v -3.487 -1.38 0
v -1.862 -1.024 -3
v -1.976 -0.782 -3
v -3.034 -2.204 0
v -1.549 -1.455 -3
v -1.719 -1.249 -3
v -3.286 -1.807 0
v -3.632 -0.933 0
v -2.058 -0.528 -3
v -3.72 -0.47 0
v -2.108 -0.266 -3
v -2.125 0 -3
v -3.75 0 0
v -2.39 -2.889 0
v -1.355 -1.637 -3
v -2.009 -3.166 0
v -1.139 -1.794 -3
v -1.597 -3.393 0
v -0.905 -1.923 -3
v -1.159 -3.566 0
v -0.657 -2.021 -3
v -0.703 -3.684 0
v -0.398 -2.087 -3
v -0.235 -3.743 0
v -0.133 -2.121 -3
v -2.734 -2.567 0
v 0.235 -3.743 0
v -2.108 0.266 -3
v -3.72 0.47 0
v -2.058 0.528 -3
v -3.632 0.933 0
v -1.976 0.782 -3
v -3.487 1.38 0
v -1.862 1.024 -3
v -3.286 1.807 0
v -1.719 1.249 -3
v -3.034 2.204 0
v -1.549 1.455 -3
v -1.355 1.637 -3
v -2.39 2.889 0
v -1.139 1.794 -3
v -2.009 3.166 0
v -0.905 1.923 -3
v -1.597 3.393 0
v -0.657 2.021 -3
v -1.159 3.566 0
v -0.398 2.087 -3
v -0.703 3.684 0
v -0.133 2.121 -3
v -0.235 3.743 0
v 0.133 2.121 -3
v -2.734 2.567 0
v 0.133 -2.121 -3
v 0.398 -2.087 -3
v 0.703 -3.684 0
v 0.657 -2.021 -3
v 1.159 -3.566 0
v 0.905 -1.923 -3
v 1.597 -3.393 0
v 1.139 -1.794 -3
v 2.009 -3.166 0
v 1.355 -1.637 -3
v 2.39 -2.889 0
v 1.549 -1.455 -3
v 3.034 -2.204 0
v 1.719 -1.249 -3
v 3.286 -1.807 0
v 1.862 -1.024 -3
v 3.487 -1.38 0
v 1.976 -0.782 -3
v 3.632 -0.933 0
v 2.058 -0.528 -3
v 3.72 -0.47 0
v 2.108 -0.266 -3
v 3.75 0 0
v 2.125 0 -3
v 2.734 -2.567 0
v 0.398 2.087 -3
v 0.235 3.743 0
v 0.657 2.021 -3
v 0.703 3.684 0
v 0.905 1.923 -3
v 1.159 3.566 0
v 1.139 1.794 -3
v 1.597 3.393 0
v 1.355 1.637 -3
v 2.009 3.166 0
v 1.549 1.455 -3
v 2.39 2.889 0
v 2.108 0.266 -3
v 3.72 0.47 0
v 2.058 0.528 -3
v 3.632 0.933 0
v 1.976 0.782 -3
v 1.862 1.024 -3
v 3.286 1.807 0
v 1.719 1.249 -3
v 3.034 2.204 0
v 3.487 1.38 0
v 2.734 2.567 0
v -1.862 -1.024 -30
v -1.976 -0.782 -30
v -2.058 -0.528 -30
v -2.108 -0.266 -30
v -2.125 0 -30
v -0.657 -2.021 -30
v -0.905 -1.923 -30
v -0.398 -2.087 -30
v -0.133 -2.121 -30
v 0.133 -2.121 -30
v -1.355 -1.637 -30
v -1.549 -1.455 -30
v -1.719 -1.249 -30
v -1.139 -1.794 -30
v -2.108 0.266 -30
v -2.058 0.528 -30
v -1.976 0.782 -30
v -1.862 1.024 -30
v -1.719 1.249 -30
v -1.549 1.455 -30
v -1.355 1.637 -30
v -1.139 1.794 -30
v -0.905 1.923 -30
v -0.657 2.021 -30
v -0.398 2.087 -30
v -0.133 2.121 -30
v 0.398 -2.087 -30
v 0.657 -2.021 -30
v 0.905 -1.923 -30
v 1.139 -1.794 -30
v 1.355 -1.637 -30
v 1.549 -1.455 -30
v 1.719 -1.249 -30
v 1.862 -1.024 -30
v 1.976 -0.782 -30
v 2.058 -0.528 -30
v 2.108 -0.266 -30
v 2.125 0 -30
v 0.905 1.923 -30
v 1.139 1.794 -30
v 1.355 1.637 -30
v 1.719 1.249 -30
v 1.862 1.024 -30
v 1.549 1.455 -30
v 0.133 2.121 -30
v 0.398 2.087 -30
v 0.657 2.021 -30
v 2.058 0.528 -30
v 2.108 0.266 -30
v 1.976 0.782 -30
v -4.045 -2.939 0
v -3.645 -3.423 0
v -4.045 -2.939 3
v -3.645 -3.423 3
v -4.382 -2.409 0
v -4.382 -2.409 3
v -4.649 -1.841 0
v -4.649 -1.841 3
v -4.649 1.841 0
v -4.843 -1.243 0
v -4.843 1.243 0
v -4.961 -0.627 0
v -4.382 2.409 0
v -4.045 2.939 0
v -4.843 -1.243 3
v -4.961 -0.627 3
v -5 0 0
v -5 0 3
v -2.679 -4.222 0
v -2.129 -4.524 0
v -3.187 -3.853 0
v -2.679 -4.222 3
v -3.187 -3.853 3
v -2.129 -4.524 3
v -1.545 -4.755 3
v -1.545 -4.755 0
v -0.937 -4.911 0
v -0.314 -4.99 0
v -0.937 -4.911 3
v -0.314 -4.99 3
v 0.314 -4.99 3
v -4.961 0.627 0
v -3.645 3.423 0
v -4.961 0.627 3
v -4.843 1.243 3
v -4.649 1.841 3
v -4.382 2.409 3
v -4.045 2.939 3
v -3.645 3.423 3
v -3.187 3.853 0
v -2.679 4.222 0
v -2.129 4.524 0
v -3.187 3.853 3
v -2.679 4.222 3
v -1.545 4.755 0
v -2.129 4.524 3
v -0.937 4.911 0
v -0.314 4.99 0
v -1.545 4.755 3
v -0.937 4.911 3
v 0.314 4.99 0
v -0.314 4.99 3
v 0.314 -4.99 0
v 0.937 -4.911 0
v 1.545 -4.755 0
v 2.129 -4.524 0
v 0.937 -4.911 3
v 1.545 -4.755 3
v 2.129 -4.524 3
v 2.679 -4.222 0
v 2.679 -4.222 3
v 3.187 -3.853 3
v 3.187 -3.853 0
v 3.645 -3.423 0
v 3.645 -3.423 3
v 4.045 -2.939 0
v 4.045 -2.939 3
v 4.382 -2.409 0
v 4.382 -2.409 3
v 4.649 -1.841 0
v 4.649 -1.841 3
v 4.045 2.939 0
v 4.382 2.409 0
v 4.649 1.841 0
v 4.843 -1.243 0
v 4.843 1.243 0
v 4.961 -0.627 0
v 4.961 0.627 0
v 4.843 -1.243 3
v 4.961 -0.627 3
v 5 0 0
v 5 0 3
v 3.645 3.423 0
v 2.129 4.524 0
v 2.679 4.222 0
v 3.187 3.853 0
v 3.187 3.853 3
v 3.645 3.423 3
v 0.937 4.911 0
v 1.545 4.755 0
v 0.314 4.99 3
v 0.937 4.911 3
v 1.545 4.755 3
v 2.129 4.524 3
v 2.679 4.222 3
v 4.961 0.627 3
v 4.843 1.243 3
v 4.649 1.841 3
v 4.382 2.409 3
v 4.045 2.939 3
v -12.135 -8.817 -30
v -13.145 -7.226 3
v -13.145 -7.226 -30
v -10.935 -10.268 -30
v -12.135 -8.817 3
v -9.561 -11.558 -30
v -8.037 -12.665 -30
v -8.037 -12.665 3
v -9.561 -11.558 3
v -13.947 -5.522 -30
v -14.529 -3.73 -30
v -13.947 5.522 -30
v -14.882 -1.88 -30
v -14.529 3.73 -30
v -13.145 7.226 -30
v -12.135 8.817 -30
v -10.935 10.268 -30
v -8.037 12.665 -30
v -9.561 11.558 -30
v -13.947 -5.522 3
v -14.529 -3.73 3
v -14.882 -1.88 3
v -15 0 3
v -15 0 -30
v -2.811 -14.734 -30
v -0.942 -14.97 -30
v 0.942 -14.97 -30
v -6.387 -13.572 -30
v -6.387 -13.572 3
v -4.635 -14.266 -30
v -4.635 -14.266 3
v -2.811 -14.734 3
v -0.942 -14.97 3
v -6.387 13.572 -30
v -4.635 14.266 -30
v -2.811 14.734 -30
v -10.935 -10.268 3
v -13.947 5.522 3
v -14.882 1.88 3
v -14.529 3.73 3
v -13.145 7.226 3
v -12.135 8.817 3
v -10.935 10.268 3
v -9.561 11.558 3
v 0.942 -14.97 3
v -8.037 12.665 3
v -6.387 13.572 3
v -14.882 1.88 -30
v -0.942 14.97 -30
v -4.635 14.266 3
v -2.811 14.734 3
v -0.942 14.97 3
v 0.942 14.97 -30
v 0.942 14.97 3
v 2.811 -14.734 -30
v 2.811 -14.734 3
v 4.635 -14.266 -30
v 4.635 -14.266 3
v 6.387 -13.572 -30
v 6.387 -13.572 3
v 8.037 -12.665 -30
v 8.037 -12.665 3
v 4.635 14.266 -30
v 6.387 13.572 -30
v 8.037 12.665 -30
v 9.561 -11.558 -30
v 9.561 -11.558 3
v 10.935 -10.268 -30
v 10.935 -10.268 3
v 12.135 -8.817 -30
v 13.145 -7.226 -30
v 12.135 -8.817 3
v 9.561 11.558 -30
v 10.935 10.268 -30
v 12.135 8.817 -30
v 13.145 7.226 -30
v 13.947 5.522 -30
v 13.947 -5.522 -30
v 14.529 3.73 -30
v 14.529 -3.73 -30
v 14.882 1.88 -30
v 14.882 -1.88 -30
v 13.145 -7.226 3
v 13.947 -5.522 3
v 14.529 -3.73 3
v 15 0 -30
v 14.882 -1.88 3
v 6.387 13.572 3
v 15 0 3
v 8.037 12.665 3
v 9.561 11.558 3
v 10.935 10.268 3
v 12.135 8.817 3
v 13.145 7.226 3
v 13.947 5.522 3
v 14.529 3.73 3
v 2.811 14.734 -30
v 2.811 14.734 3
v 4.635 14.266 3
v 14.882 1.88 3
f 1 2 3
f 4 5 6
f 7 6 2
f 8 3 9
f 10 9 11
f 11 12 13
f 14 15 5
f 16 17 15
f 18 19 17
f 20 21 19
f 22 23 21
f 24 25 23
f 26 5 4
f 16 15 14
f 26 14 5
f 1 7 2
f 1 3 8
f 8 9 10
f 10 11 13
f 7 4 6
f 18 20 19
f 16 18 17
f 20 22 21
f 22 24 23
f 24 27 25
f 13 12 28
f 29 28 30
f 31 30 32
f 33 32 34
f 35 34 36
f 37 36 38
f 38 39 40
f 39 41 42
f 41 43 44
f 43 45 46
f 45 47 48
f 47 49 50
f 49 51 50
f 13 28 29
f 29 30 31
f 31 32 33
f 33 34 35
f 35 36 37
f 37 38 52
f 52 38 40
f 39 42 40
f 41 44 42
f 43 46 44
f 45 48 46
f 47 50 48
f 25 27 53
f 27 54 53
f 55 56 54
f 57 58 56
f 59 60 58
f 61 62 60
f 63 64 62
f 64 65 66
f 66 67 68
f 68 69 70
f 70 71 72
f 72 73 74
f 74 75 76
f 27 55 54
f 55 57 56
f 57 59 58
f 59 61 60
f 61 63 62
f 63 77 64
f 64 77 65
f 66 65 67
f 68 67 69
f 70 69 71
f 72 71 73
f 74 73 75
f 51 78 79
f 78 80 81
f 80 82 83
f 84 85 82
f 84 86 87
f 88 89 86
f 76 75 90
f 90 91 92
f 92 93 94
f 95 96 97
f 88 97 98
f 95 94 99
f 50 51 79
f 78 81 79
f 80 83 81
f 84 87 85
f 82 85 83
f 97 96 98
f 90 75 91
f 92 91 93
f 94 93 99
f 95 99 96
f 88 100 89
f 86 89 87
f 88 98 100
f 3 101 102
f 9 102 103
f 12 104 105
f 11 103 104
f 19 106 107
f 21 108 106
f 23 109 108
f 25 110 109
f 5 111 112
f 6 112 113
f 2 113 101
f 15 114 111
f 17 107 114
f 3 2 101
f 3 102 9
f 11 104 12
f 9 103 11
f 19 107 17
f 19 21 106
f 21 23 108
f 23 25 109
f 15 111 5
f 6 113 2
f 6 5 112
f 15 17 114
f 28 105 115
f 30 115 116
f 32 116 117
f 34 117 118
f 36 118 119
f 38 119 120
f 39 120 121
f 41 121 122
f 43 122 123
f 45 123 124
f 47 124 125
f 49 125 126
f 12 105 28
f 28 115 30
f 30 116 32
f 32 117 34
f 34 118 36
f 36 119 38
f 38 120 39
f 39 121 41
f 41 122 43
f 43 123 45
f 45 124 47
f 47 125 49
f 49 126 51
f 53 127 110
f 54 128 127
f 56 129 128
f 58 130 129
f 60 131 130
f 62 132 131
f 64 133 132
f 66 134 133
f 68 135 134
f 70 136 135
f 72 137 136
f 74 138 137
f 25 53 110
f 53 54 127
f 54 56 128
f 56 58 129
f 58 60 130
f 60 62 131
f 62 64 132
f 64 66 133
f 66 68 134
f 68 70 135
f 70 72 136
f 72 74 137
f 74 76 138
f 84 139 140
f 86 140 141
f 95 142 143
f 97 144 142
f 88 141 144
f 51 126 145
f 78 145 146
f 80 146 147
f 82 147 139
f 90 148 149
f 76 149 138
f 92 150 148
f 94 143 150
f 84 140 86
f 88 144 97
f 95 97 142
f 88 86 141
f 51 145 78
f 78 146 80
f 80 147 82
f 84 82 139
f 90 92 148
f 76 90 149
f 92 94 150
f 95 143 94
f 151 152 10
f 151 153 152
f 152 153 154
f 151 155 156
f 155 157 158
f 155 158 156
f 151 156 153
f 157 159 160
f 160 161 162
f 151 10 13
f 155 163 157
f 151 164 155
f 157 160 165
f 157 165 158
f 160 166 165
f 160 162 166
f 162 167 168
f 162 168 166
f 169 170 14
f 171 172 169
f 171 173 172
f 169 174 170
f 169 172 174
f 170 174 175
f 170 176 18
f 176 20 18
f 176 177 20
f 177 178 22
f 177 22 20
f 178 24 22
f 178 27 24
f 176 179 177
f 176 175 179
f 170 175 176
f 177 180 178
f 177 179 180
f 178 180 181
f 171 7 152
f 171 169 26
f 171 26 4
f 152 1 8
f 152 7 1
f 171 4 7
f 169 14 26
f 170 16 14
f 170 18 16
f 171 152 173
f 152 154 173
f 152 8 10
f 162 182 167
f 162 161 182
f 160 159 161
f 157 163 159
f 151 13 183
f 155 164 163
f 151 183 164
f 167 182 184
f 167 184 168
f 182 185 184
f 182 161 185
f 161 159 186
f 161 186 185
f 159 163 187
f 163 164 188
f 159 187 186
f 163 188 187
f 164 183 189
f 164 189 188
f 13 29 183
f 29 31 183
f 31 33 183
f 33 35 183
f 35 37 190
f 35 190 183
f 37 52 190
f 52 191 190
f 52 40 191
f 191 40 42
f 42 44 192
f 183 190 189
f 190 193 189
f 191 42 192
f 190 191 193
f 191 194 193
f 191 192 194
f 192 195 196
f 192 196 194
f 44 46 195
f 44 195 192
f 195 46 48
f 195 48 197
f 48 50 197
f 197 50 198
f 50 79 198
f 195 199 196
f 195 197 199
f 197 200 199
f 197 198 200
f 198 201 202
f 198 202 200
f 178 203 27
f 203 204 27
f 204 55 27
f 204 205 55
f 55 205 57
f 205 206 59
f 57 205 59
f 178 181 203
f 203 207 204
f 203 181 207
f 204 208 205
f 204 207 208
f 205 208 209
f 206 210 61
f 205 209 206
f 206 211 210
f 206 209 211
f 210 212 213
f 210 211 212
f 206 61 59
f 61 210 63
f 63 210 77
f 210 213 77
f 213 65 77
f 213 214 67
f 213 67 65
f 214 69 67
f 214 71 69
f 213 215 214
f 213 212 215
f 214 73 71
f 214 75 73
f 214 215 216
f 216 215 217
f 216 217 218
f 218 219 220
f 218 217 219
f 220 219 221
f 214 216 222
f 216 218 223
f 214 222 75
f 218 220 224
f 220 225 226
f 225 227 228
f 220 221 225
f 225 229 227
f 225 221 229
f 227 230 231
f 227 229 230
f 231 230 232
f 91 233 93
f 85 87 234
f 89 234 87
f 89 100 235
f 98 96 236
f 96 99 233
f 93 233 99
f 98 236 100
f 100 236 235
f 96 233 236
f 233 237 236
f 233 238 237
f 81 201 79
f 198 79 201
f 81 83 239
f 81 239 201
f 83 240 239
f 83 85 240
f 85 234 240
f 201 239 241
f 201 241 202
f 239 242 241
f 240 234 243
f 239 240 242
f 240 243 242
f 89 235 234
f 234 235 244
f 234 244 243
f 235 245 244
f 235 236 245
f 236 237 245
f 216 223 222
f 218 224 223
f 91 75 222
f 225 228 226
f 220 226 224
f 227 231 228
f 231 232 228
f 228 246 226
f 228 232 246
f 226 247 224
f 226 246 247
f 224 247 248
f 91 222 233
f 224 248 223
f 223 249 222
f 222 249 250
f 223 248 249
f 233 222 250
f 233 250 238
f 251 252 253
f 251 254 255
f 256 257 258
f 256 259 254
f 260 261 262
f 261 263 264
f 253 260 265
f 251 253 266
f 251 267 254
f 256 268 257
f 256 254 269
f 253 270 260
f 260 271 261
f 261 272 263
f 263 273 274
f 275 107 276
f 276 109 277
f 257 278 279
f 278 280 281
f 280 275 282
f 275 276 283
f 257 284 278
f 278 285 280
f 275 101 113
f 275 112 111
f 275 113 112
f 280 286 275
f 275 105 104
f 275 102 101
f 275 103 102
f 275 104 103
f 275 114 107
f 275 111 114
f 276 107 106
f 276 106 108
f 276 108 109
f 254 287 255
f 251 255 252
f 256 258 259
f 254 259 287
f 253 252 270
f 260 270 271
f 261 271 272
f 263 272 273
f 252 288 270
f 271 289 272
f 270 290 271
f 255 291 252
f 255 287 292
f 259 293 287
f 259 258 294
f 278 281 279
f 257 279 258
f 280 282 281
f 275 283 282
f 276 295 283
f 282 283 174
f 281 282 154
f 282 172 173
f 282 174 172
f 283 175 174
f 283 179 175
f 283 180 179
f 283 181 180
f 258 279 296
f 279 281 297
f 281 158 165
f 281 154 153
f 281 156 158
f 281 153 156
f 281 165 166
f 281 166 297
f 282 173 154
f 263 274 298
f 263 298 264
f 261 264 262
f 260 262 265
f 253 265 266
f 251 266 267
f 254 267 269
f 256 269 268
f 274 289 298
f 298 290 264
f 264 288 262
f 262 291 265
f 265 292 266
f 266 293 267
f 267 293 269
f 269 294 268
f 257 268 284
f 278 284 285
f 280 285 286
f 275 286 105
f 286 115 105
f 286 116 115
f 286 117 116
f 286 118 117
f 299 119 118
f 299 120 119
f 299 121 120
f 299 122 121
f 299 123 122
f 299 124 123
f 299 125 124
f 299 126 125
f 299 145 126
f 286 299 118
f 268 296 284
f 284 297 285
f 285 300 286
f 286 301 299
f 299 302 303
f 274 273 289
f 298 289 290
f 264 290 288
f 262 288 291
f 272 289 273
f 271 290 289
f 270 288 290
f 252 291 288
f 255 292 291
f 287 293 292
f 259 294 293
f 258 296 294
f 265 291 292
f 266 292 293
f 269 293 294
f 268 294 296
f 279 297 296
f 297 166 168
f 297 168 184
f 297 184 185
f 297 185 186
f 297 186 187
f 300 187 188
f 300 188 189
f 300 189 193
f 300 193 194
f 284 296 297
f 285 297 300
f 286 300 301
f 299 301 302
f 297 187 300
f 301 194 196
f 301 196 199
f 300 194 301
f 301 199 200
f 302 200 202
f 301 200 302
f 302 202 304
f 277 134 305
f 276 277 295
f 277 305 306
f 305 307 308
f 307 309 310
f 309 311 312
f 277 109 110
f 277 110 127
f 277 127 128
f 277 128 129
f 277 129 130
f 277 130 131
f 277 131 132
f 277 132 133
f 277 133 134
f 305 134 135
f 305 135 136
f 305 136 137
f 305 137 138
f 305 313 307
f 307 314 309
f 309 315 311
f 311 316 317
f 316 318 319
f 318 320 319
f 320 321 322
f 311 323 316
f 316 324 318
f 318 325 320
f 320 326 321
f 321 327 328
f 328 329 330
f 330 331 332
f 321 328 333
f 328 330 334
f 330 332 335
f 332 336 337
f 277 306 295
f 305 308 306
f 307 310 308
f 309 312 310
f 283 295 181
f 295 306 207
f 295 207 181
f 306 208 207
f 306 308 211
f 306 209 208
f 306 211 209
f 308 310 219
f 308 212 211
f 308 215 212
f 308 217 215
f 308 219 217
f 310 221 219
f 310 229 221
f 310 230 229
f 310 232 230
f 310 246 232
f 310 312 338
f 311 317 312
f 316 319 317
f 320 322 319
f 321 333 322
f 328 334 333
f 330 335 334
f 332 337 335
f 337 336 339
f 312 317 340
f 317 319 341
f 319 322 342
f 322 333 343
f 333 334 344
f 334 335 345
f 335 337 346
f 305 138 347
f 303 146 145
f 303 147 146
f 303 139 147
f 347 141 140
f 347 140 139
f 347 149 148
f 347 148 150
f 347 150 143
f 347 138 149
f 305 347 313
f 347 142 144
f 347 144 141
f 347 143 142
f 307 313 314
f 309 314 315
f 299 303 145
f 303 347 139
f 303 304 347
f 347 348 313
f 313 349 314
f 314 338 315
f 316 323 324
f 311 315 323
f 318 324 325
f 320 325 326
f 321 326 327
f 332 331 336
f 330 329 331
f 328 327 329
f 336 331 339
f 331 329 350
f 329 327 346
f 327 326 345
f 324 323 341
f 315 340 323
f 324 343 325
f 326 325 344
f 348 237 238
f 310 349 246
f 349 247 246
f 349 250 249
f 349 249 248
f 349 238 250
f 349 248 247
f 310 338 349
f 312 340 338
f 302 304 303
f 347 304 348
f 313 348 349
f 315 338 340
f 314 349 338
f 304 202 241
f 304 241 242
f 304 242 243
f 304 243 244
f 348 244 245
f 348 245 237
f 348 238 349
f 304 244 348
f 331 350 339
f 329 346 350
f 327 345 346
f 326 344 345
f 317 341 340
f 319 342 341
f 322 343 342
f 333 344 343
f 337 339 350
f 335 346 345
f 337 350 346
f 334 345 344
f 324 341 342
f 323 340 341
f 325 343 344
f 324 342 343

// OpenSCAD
$fn = 50;


difference() {
	union() {
		translate(v = [0, 0, -30.0000000000]) {
			cylinder(h = 33, r = 15.0000000000);
		}
	}
	union() {
		translate(v = [0, 0, 0]) {
			rotate(a = [0, 0, 0]) {
				difference() {
					union() {
						translate(v = [0, 0, -33.0000000000]) {
							cylinder(h = 33, r = 2.0000000000);
						}
						translate(v = [0, 0, -3]) {
							cylinder(h = 3, r1 = 2.1250000000, r2 = 3.7500000000);
						}
						translate(v = [0, 0, -33.0000000000]) {
							cylinder(h = 33, r = 2.1250000000);
						}
						translate(v = [0, 0, -33.0000000000]) {
							cylinder(h = 33, r = 2.0000000000);
						}
					}
					union();
				}
			}
		}
		#cylinder(h = 3, r = 5.0000000000);
	}
}
